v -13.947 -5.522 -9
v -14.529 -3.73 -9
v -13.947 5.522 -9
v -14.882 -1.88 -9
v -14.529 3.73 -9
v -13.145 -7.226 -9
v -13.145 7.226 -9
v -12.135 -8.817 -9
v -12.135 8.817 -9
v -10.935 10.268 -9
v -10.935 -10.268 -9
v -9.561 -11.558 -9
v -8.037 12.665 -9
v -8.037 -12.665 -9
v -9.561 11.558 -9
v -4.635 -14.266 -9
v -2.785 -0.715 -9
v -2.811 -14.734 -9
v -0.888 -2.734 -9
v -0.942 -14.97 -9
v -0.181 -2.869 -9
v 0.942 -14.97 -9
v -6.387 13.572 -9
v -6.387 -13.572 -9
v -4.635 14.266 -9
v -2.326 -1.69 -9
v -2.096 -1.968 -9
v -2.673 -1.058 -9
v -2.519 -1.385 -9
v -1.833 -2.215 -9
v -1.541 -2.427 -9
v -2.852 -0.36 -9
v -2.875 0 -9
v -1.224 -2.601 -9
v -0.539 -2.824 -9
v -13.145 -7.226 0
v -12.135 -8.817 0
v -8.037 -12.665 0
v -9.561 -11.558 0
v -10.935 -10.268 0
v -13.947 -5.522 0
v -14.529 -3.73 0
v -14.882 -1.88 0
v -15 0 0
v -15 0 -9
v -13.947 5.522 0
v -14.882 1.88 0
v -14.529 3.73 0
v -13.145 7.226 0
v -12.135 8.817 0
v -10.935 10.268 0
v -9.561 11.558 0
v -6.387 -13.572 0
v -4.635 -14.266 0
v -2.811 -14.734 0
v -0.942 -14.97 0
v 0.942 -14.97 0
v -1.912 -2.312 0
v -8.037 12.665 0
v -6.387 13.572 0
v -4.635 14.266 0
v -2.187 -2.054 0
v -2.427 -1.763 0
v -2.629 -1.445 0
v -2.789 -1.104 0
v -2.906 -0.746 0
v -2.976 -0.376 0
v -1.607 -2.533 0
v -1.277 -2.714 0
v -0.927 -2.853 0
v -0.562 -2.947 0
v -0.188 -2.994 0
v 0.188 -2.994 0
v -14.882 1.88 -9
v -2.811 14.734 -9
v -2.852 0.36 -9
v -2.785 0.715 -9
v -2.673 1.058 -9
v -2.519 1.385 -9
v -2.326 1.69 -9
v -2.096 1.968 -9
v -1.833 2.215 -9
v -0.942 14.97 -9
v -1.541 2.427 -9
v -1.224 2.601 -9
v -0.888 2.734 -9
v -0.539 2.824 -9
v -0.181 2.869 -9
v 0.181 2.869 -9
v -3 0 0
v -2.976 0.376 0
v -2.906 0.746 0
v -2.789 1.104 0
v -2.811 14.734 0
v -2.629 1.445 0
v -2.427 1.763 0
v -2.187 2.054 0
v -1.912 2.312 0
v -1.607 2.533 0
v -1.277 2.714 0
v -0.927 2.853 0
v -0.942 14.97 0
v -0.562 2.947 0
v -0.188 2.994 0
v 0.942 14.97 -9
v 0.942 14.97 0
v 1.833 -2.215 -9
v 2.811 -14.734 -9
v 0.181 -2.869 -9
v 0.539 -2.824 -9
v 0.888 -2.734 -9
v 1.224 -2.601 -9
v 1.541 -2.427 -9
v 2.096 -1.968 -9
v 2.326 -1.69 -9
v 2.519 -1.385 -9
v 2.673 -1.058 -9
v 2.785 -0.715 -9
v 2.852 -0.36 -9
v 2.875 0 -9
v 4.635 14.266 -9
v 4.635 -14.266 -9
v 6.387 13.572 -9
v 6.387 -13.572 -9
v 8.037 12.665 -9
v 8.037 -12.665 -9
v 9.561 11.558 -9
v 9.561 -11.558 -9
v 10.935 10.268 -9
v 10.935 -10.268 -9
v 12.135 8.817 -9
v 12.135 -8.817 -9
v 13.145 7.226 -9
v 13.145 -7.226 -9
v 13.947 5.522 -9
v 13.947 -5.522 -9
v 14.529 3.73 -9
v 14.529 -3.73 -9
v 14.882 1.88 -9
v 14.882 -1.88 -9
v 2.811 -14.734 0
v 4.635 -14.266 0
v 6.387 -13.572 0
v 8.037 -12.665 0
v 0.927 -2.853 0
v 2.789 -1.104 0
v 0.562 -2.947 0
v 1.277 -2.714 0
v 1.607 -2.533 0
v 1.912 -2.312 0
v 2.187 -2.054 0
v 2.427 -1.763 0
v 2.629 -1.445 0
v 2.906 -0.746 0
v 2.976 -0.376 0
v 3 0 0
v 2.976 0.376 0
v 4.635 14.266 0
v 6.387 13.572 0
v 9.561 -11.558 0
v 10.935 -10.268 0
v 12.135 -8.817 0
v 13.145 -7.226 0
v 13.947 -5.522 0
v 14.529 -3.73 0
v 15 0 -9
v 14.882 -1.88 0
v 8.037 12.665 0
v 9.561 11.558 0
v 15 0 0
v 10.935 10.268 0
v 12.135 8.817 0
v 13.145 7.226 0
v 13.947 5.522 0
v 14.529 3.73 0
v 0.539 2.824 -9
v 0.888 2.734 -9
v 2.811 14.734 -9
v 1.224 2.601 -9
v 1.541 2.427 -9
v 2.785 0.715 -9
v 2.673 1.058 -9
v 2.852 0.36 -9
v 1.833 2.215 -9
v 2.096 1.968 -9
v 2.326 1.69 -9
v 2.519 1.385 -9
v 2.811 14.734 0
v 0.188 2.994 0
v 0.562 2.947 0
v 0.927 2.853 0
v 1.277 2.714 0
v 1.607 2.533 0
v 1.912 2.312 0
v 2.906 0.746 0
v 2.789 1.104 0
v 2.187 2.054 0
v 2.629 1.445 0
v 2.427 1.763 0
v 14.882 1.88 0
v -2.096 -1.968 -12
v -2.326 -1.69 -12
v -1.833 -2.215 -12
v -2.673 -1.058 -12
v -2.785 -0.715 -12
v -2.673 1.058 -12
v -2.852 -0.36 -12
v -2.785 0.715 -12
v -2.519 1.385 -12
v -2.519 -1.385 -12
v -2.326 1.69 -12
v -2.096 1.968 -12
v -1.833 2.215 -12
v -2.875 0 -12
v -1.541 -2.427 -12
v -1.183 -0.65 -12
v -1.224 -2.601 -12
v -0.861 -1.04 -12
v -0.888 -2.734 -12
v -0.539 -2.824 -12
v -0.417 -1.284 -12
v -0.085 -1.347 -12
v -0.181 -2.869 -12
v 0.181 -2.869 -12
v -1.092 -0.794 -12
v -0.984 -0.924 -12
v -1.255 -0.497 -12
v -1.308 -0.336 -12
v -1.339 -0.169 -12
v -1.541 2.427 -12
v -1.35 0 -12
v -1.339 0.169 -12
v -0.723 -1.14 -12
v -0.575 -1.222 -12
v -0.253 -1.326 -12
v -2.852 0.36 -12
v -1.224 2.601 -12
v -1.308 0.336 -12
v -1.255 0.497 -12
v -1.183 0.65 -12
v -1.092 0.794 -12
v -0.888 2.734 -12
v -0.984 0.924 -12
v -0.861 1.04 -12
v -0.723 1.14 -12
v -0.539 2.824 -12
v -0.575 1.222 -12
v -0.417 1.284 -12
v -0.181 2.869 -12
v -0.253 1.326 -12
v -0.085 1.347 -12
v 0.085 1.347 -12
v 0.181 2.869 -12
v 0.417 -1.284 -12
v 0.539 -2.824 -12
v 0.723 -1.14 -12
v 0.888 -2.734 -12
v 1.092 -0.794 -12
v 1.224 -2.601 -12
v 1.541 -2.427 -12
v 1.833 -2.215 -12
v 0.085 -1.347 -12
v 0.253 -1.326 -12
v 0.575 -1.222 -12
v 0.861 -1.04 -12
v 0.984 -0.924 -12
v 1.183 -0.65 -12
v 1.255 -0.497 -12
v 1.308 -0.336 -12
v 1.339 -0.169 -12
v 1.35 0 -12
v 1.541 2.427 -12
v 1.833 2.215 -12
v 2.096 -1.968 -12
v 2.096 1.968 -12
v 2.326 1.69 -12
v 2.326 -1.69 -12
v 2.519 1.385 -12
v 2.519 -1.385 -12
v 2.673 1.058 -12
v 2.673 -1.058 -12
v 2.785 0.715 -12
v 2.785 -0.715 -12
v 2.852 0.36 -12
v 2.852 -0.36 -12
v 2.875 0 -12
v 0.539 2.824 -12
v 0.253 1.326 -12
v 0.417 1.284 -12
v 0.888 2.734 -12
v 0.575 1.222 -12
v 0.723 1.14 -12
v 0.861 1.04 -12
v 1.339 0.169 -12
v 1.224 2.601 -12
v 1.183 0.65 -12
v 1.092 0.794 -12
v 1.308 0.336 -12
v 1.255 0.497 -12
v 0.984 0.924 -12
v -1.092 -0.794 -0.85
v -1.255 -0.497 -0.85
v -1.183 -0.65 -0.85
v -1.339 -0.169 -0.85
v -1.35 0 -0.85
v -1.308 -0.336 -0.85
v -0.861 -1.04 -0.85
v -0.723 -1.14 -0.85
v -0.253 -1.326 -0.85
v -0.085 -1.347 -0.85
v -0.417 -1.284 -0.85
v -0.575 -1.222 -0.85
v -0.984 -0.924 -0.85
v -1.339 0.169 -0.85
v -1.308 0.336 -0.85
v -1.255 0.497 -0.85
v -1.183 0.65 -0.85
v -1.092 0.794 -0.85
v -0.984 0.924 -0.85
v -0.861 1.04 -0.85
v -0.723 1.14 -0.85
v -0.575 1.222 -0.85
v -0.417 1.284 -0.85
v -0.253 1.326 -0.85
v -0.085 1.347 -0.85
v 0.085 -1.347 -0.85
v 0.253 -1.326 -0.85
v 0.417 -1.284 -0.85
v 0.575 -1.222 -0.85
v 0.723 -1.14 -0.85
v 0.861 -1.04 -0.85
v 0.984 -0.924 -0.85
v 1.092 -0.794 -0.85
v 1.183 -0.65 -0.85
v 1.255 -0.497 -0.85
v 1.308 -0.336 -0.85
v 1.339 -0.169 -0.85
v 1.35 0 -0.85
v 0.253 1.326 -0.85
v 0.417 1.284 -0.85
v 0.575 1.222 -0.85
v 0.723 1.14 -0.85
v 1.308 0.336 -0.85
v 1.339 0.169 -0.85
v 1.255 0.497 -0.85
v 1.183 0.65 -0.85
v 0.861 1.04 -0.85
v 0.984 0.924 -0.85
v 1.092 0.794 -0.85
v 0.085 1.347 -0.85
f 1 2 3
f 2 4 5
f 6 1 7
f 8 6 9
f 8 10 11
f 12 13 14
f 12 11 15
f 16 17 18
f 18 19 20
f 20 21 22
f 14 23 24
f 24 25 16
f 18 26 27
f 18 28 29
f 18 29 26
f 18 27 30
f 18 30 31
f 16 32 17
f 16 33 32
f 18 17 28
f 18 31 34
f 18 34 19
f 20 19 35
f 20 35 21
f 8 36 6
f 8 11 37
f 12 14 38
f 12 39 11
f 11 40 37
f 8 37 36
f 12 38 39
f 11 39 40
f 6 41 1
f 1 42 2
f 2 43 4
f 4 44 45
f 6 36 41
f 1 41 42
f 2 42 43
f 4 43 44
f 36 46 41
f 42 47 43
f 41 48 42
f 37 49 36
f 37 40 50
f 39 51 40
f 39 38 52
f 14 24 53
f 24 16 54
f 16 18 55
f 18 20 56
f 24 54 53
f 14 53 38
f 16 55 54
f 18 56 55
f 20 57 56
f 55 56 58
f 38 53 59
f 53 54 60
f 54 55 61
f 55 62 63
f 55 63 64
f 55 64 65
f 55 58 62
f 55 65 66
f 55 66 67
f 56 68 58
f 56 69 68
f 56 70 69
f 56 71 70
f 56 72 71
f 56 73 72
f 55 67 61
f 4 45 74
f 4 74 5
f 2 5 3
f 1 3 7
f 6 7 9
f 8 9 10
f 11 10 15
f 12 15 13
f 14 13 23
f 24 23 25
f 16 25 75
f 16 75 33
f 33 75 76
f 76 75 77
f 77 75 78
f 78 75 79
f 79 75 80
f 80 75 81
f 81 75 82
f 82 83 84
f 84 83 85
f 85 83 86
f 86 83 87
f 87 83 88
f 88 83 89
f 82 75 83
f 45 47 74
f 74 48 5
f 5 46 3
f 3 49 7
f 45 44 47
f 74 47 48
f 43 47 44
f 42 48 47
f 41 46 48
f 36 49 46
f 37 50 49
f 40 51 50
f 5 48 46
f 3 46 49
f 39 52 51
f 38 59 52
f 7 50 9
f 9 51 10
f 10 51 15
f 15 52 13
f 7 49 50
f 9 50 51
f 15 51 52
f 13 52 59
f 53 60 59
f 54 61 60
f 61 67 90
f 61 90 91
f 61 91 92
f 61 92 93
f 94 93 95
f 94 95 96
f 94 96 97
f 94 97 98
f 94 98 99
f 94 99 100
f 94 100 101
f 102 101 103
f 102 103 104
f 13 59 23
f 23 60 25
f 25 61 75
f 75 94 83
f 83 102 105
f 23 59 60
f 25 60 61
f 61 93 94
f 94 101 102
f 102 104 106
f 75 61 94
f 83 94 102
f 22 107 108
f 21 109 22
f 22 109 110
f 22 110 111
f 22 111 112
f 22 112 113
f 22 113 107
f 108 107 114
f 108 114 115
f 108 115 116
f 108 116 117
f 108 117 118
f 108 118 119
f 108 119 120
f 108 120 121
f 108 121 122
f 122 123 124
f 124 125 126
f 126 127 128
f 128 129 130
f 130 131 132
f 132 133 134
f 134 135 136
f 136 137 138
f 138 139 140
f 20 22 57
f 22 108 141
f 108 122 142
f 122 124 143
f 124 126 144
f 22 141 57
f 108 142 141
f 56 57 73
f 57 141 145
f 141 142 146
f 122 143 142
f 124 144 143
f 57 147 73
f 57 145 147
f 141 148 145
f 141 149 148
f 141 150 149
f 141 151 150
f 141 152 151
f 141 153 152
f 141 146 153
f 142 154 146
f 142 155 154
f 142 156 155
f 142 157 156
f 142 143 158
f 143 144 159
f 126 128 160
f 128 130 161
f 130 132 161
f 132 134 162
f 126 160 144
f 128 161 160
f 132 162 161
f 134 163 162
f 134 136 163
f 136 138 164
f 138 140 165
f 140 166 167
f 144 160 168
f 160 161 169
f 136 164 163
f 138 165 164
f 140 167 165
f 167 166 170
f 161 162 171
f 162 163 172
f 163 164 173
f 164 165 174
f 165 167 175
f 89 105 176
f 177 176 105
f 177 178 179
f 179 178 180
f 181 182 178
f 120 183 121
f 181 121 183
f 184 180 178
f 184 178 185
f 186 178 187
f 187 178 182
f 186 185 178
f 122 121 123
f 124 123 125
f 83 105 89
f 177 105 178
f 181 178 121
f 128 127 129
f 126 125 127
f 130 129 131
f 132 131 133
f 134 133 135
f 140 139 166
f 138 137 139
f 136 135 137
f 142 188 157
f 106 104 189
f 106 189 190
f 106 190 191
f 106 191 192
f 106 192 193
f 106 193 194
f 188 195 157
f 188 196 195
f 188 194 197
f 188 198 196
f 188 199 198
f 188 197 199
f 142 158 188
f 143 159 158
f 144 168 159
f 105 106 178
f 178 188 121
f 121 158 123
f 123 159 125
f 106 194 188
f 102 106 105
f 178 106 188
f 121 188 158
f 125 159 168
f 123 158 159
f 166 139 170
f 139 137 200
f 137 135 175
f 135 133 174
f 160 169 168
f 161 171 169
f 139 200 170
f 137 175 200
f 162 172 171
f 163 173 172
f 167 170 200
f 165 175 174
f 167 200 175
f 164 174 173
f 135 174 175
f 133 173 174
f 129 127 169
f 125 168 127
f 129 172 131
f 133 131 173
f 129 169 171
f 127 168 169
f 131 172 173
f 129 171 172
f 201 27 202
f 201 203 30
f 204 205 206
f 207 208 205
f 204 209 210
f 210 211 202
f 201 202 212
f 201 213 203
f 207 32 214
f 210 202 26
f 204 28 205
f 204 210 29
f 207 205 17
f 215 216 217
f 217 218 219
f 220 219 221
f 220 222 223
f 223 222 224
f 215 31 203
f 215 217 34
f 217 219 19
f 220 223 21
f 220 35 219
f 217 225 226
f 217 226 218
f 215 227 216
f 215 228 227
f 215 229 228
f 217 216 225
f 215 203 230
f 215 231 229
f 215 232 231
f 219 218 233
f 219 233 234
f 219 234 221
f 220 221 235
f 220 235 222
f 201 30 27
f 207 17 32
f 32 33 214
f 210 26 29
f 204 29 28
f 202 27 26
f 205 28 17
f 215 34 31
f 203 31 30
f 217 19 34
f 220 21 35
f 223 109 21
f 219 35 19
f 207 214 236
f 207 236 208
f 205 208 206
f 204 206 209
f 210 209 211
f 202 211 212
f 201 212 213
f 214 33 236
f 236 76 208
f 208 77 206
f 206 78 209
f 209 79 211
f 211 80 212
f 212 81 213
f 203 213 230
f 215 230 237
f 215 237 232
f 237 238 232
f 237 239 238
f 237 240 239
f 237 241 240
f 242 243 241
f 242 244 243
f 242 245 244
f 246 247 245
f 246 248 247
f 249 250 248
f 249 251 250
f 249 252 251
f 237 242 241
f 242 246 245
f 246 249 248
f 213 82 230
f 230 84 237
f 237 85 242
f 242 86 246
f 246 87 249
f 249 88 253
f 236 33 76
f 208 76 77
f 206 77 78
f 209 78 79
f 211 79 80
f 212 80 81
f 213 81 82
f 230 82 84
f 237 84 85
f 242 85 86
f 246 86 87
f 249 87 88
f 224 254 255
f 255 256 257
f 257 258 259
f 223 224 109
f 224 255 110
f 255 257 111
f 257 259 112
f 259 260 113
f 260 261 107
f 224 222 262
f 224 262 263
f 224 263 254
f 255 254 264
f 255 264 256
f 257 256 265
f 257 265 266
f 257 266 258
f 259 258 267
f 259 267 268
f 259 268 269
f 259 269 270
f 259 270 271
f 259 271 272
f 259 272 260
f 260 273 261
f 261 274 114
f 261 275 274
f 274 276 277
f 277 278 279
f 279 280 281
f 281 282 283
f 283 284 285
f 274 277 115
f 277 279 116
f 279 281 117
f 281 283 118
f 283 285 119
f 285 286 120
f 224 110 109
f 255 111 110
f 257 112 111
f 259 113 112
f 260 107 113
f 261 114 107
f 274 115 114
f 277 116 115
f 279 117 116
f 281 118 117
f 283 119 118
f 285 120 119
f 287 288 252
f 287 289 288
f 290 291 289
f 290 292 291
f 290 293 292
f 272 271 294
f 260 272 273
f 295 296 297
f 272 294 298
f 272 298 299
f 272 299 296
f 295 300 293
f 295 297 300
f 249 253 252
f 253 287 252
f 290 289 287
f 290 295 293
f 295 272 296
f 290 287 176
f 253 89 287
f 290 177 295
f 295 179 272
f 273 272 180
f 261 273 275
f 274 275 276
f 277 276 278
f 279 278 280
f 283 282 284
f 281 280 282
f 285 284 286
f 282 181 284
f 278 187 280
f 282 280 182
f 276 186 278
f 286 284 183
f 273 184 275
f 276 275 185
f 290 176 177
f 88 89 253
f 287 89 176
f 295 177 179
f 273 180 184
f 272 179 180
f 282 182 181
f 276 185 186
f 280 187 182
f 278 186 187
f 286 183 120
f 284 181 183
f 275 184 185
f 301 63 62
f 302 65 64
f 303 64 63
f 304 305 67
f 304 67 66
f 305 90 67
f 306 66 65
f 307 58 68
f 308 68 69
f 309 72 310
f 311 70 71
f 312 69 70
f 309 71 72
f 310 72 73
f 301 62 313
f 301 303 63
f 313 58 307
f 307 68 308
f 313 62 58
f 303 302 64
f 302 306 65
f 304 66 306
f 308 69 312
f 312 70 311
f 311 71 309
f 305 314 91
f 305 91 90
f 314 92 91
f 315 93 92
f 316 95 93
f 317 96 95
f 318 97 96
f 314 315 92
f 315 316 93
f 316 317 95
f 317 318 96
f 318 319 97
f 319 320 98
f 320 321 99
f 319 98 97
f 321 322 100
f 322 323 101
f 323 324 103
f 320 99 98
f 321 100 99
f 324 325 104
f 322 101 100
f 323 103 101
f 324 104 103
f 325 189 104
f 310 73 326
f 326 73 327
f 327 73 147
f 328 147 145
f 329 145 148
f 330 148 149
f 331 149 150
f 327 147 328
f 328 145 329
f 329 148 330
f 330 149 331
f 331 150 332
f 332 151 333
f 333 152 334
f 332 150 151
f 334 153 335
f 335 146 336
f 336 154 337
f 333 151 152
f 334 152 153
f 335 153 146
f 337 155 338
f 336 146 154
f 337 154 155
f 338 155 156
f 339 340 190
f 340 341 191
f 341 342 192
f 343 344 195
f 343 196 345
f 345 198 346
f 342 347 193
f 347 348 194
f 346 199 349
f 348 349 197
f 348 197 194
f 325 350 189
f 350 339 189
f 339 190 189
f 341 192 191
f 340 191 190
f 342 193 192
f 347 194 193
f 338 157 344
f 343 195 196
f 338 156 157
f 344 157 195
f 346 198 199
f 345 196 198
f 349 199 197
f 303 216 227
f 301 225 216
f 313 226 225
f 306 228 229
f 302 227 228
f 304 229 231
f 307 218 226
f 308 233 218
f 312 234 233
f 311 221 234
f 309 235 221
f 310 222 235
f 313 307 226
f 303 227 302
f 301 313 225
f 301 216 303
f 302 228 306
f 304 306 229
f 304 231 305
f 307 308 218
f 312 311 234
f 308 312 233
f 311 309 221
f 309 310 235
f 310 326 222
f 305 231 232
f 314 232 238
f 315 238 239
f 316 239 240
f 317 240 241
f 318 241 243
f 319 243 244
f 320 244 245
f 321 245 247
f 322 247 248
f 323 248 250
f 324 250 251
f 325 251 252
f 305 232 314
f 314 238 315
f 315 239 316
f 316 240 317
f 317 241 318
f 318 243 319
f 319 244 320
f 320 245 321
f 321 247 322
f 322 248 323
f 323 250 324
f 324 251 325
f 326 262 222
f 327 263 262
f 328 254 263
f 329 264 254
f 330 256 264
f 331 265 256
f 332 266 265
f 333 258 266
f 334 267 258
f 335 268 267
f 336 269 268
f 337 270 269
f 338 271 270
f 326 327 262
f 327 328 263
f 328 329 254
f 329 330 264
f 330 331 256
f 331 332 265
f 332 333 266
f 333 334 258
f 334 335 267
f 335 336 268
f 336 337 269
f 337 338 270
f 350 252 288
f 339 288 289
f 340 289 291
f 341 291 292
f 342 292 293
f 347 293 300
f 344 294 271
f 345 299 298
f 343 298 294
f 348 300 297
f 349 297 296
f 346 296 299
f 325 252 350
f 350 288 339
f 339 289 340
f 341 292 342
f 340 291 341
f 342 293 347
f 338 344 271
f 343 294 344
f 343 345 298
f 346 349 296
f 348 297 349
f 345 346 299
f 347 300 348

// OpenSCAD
$fn = 50;


difference() {
	union() {
		translate(v = [0, 0, -9.0000000000]) {
			cylinder(h = 9, r = 15.0000000000);
		}
		#translate(v = [0, 0, -12.0000000000]) {
			cylinder(h = 12, r = 2.8750000000);
		}
	}
	union() {
		translate(v = [0, 0, 0]) {
			rotate(a = [0, 0, 0]) {
				difference() {
					union() {
						translate(v = [0, 0, -12.0000000000]) {
							cylinder(h = 12, r = 1.0000000000);
						}
						translate(v = [0, 0, -0.8500000000]) {
							cylinder(h = 0.8500000000, r1 = 1.3500000000, r2 = 3.0000000000);
						}
						translate(v = [0, 0, -12.0000000000]) {
							cylinder(h = 12, r = 1.3500000000);
						}
						translate(v = [0, 0, -12.0000000000]) {
							cylinder(h = 12, r = 1.0000000000);
						}
					}
					union();
				}
			}
		}
	}
}
